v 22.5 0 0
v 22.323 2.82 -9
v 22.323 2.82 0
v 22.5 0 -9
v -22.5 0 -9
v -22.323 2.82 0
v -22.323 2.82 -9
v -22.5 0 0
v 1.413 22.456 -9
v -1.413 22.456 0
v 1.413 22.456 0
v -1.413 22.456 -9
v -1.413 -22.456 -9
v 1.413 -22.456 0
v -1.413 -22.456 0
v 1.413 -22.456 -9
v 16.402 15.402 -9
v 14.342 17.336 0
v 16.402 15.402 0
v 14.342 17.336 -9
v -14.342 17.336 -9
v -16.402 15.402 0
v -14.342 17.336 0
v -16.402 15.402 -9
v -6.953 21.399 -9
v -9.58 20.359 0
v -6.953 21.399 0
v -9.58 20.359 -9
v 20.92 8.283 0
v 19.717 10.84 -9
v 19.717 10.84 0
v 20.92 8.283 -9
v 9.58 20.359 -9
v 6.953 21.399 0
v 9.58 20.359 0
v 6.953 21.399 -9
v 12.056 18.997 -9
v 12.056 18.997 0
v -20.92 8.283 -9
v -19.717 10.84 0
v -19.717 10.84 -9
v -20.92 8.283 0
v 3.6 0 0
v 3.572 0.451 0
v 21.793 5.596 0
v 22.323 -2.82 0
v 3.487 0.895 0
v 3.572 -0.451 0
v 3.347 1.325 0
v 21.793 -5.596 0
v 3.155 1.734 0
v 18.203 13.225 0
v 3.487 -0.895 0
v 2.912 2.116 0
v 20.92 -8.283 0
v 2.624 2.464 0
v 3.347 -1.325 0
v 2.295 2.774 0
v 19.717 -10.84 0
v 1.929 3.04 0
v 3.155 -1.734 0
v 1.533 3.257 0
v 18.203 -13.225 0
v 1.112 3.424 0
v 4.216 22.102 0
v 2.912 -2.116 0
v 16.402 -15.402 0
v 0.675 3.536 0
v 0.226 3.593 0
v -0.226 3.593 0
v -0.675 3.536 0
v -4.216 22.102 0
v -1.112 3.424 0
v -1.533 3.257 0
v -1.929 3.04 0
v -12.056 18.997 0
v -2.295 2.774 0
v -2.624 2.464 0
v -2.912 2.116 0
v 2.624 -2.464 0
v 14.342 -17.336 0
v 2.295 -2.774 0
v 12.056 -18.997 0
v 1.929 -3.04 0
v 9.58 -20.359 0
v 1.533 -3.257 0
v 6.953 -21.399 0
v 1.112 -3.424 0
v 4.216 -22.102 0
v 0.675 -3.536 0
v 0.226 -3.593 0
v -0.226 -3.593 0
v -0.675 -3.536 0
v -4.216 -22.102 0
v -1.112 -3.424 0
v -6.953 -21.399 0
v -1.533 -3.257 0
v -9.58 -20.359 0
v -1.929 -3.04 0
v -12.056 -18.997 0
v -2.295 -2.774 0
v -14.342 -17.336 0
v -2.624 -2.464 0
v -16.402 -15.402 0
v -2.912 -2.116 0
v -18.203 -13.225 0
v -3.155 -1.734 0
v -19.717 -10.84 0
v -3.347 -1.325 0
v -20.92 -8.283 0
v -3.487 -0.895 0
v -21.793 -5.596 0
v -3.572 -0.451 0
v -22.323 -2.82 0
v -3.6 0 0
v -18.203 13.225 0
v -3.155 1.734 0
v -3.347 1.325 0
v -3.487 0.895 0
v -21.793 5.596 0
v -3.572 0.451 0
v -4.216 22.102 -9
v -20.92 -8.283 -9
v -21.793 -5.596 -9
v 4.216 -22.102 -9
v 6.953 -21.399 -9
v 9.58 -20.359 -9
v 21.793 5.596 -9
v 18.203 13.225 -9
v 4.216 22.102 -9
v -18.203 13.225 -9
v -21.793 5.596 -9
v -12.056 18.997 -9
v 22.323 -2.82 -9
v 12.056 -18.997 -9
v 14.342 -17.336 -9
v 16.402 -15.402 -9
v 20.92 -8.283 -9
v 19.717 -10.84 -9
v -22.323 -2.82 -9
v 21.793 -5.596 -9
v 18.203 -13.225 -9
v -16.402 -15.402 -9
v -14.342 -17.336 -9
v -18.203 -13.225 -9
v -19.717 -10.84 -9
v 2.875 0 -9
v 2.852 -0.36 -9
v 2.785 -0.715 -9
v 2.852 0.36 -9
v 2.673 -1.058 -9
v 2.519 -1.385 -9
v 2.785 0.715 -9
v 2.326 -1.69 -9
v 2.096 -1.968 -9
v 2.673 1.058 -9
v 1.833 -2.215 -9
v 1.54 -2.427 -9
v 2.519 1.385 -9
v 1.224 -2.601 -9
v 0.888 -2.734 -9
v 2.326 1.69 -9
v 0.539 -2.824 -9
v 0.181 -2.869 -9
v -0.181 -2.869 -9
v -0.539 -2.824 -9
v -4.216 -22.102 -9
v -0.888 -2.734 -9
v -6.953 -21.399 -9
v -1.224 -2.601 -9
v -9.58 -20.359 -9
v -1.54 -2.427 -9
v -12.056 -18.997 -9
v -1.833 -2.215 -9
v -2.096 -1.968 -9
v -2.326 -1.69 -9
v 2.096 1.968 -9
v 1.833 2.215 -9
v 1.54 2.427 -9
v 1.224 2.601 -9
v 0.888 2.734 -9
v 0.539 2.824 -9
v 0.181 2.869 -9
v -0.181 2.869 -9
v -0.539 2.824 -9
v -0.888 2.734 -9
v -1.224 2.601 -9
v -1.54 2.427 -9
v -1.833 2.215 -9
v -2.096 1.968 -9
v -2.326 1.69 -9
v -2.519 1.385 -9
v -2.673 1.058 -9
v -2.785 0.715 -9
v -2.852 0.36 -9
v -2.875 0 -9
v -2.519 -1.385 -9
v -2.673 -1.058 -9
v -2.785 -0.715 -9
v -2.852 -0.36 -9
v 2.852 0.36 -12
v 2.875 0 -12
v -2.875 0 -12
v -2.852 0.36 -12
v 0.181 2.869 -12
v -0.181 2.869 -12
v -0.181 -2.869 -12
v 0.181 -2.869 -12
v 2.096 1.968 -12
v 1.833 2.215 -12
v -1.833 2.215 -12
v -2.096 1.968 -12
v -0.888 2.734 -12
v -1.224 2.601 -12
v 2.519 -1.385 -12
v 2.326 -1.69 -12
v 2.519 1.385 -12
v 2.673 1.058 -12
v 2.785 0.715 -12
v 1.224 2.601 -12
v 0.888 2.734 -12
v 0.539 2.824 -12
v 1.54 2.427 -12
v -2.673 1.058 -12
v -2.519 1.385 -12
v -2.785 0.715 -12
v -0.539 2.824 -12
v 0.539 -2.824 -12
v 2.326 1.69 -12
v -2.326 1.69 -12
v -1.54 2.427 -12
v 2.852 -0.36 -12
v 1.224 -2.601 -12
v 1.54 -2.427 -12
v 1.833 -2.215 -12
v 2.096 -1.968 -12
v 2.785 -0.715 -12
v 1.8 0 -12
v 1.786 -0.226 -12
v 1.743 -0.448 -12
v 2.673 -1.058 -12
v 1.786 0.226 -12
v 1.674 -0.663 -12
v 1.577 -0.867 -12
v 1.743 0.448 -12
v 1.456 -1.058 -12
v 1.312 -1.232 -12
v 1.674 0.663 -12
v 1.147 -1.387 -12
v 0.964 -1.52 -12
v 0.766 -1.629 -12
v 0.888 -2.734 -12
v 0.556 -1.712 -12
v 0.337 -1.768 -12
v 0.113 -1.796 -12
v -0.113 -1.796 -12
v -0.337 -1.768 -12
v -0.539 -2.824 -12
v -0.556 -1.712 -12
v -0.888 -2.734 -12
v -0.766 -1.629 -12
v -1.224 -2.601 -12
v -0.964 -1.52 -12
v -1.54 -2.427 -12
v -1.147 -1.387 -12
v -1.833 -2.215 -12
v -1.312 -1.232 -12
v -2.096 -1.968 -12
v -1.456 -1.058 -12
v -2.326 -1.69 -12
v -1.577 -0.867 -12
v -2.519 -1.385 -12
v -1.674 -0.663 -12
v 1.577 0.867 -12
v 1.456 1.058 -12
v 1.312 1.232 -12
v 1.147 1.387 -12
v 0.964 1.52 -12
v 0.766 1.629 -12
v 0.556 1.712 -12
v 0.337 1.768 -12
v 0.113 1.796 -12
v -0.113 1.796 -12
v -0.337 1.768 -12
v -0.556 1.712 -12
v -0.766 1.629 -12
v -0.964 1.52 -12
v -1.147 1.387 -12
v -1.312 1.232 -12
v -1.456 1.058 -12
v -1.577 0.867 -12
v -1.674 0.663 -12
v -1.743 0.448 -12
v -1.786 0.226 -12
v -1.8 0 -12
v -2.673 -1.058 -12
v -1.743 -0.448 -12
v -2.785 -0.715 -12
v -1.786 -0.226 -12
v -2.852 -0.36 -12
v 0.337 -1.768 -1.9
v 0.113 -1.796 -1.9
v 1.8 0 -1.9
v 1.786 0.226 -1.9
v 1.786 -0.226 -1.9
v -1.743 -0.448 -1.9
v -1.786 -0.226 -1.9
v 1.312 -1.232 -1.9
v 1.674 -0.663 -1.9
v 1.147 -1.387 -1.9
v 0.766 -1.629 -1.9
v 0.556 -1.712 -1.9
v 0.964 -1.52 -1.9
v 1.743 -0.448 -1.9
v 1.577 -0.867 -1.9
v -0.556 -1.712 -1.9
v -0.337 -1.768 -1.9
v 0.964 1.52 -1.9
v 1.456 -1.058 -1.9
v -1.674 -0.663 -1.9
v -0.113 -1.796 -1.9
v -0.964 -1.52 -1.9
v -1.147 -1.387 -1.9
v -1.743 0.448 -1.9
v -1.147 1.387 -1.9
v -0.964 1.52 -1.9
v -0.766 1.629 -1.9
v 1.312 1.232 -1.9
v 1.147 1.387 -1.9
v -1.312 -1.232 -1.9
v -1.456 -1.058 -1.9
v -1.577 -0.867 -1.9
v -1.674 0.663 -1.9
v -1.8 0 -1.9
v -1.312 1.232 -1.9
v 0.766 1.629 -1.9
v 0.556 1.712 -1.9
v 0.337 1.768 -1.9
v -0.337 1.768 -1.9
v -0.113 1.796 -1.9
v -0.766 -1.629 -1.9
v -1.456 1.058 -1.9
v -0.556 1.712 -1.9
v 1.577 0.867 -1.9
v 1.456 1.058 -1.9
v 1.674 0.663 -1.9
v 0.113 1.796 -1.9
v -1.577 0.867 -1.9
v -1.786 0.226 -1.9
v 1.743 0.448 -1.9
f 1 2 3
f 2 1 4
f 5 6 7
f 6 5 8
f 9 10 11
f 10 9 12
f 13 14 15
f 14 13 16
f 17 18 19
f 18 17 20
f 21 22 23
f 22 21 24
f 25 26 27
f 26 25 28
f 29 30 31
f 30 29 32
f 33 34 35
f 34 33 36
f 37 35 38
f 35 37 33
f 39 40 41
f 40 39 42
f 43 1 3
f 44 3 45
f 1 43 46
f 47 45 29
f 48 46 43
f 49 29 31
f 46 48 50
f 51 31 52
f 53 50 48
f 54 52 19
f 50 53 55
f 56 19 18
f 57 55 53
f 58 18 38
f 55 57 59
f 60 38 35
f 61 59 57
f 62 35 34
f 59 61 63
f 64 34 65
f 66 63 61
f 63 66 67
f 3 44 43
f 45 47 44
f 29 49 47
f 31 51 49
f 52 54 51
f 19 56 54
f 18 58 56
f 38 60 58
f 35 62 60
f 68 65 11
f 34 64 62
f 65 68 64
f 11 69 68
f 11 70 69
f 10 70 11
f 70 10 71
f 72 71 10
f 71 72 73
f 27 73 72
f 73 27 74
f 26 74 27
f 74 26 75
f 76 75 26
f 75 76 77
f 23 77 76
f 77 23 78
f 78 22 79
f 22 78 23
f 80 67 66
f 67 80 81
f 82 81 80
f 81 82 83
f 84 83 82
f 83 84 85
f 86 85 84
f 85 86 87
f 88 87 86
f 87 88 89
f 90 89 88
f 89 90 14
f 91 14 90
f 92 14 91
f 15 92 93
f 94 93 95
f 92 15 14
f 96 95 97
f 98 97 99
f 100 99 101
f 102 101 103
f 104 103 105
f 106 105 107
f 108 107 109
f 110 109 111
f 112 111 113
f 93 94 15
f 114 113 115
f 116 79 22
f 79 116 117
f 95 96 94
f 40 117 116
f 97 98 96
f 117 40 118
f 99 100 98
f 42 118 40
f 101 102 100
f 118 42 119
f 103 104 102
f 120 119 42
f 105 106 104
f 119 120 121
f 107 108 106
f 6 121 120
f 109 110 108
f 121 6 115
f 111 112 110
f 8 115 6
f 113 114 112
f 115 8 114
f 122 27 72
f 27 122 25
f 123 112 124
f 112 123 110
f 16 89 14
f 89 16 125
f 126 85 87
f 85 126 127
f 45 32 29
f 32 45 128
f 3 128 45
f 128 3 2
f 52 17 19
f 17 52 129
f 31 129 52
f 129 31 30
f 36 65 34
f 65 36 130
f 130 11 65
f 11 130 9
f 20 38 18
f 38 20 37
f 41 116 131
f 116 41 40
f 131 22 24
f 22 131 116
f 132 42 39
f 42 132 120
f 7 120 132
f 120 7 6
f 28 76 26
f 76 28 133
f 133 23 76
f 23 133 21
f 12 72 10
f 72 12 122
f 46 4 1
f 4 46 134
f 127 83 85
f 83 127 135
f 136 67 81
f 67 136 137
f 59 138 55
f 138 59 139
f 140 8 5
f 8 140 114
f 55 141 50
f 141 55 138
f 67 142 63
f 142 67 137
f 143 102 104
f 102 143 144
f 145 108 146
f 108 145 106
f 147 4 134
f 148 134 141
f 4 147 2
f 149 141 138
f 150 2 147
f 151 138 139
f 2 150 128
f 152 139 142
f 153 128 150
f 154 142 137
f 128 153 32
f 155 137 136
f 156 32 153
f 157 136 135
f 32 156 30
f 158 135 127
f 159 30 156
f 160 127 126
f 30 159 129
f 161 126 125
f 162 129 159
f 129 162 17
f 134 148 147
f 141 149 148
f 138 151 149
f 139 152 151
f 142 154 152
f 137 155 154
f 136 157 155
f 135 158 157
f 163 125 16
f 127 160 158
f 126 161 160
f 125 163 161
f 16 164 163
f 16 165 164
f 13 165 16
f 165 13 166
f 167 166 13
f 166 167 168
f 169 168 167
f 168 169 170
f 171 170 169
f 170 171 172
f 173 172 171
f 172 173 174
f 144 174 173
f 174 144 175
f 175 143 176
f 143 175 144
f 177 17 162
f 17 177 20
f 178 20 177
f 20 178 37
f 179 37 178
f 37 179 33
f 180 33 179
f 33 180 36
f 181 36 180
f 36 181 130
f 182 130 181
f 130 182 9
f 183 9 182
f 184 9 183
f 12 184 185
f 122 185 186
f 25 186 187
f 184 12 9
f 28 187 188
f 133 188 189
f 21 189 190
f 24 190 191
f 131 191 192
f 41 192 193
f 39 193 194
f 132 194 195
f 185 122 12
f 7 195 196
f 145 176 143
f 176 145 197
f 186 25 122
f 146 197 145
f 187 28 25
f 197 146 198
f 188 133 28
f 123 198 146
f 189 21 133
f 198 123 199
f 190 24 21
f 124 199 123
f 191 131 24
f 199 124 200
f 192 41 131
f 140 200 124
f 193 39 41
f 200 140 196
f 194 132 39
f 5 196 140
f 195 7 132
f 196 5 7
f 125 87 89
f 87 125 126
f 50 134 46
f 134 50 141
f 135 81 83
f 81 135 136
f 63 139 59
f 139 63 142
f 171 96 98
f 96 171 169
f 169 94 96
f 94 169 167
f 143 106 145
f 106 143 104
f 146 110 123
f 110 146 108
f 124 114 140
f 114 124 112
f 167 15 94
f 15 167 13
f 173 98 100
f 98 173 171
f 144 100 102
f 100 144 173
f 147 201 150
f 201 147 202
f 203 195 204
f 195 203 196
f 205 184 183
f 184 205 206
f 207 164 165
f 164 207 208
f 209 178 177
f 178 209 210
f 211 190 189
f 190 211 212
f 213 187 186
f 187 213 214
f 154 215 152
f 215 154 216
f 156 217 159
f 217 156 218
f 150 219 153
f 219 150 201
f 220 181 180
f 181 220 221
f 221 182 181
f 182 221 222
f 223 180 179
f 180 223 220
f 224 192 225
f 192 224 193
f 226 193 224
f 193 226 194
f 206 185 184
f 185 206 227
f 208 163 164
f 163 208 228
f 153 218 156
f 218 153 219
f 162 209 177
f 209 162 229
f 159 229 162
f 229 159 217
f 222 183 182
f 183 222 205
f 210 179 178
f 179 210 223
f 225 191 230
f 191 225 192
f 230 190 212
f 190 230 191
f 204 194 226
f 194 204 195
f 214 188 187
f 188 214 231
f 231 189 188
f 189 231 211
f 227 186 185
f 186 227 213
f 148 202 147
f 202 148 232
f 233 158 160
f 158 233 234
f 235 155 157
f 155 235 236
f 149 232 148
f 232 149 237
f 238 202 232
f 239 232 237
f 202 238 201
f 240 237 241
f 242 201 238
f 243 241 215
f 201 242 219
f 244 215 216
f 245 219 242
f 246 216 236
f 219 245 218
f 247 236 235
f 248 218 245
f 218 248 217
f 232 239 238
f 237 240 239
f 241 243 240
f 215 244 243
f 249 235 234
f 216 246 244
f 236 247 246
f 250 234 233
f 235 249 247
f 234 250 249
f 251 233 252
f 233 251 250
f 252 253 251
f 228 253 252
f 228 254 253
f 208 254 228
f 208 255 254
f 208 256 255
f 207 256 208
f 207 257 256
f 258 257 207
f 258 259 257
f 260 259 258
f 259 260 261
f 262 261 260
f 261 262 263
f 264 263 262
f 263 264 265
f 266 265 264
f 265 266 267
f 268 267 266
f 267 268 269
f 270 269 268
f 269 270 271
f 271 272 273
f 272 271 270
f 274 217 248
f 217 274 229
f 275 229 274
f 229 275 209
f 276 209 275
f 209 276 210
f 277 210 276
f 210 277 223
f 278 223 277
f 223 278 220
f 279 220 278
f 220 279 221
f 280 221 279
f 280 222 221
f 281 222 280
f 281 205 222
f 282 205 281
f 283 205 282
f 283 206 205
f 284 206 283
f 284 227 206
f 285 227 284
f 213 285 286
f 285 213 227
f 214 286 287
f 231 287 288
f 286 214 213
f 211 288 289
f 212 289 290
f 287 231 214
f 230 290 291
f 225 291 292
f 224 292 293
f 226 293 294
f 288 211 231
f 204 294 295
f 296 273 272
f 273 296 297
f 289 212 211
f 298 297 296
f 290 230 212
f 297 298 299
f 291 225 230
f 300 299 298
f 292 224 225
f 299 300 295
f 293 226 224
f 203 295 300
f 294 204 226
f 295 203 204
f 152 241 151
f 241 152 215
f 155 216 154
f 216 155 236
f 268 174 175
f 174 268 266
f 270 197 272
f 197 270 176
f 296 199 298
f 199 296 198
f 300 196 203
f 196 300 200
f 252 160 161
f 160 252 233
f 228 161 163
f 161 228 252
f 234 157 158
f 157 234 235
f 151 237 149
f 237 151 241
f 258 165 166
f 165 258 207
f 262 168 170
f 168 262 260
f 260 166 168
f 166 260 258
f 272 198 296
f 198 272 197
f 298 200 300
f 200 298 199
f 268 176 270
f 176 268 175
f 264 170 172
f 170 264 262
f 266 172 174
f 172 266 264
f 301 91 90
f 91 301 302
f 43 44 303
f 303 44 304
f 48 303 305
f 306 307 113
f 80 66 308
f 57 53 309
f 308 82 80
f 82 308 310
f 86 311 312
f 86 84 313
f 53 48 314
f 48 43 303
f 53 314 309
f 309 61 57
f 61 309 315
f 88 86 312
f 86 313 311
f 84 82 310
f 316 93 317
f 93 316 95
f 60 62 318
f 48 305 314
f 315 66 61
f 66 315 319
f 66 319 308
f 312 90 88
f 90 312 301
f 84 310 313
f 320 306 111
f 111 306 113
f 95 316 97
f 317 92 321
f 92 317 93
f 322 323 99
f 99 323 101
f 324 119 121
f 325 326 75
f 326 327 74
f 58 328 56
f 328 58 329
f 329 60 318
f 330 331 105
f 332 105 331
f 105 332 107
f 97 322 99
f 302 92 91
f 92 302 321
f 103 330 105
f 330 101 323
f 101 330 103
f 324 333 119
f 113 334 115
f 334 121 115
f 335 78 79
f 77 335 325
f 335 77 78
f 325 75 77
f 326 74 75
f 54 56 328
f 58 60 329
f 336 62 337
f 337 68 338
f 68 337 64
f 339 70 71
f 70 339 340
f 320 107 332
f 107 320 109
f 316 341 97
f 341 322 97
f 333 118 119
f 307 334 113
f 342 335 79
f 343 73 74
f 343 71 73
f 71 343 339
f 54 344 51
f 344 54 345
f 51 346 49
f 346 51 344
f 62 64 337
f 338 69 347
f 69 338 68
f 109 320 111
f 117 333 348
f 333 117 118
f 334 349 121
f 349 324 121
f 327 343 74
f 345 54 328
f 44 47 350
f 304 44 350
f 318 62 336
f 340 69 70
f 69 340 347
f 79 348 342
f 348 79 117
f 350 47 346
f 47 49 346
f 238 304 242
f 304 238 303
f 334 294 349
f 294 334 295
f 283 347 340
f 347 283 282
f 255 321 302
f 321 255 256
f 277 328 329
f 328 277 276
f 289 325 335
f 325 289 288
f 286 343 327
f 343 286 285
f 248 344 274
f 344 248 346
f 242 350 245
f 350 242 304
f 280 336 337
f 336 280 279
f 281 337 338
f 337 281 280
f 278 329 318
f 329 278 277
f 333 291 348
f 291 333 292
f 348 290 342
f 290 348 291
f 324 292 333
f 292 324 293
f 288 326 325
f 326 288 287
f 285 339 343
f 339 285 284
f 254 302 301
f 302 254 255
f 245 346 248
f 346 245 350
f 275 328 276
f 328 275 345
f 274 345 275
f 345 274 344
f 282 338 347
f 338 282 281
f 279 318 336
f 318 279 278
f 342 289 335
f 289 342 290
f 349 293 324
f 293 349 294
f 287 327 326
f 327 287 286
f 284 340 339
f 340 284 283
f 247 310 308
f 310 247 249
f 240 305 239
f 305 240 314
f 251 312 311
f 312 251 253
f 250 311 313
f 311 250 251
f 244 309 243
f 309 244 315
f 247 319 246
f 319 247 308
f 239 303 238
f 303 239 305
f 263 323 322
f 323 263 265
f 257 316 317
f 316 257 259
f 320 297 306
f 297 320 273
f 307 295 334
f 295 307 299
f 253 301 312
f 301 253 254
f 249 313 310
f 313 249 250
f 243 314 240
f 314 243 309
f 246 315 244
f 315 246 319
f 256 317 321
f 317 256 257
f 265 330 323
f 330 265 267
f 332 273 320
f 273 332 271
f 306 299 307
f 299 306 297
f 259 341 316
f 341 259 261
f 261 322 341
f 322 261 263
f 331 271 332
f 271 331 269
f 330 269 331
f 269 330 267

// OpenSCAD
$fn = 50;


difference() {
	union() {
		translate(v = [0, 0, -9.0000000000]) {
			cylinder(h = 9, r = 22.5000000000);
		}
		translate(v = [0, 0, -12.0000000000]) {
			cylinder(h = 12, r = 2.8750000000);
		}
	}
	union() {
		translate(v = [0, 0, 0]) {
			rotate(a = [0, 0, 0]) {
				difference() {
					union() {
						translate(v = [0, 0, -12.0000000000]) {
							cylinder(h = 12, r = 1.5000000000);
						}
						translate(v = [0, 0, -1.9000000000]) {
							cylinder(h = 1.9000000000, r1 = 1.8000000000, r2 = 3.6000000000);
						}
						translate(v = [0, 0, -12.0000000000]) {
							cylinder(h = 12, r = 1.8000000000);
						}
						translate(v = [0, 0, -12.0000000000]) {
							cylinder(h = 12, r = 1.5000000000);
						}
					}
					union();
				}
			}
		}
	}
}
